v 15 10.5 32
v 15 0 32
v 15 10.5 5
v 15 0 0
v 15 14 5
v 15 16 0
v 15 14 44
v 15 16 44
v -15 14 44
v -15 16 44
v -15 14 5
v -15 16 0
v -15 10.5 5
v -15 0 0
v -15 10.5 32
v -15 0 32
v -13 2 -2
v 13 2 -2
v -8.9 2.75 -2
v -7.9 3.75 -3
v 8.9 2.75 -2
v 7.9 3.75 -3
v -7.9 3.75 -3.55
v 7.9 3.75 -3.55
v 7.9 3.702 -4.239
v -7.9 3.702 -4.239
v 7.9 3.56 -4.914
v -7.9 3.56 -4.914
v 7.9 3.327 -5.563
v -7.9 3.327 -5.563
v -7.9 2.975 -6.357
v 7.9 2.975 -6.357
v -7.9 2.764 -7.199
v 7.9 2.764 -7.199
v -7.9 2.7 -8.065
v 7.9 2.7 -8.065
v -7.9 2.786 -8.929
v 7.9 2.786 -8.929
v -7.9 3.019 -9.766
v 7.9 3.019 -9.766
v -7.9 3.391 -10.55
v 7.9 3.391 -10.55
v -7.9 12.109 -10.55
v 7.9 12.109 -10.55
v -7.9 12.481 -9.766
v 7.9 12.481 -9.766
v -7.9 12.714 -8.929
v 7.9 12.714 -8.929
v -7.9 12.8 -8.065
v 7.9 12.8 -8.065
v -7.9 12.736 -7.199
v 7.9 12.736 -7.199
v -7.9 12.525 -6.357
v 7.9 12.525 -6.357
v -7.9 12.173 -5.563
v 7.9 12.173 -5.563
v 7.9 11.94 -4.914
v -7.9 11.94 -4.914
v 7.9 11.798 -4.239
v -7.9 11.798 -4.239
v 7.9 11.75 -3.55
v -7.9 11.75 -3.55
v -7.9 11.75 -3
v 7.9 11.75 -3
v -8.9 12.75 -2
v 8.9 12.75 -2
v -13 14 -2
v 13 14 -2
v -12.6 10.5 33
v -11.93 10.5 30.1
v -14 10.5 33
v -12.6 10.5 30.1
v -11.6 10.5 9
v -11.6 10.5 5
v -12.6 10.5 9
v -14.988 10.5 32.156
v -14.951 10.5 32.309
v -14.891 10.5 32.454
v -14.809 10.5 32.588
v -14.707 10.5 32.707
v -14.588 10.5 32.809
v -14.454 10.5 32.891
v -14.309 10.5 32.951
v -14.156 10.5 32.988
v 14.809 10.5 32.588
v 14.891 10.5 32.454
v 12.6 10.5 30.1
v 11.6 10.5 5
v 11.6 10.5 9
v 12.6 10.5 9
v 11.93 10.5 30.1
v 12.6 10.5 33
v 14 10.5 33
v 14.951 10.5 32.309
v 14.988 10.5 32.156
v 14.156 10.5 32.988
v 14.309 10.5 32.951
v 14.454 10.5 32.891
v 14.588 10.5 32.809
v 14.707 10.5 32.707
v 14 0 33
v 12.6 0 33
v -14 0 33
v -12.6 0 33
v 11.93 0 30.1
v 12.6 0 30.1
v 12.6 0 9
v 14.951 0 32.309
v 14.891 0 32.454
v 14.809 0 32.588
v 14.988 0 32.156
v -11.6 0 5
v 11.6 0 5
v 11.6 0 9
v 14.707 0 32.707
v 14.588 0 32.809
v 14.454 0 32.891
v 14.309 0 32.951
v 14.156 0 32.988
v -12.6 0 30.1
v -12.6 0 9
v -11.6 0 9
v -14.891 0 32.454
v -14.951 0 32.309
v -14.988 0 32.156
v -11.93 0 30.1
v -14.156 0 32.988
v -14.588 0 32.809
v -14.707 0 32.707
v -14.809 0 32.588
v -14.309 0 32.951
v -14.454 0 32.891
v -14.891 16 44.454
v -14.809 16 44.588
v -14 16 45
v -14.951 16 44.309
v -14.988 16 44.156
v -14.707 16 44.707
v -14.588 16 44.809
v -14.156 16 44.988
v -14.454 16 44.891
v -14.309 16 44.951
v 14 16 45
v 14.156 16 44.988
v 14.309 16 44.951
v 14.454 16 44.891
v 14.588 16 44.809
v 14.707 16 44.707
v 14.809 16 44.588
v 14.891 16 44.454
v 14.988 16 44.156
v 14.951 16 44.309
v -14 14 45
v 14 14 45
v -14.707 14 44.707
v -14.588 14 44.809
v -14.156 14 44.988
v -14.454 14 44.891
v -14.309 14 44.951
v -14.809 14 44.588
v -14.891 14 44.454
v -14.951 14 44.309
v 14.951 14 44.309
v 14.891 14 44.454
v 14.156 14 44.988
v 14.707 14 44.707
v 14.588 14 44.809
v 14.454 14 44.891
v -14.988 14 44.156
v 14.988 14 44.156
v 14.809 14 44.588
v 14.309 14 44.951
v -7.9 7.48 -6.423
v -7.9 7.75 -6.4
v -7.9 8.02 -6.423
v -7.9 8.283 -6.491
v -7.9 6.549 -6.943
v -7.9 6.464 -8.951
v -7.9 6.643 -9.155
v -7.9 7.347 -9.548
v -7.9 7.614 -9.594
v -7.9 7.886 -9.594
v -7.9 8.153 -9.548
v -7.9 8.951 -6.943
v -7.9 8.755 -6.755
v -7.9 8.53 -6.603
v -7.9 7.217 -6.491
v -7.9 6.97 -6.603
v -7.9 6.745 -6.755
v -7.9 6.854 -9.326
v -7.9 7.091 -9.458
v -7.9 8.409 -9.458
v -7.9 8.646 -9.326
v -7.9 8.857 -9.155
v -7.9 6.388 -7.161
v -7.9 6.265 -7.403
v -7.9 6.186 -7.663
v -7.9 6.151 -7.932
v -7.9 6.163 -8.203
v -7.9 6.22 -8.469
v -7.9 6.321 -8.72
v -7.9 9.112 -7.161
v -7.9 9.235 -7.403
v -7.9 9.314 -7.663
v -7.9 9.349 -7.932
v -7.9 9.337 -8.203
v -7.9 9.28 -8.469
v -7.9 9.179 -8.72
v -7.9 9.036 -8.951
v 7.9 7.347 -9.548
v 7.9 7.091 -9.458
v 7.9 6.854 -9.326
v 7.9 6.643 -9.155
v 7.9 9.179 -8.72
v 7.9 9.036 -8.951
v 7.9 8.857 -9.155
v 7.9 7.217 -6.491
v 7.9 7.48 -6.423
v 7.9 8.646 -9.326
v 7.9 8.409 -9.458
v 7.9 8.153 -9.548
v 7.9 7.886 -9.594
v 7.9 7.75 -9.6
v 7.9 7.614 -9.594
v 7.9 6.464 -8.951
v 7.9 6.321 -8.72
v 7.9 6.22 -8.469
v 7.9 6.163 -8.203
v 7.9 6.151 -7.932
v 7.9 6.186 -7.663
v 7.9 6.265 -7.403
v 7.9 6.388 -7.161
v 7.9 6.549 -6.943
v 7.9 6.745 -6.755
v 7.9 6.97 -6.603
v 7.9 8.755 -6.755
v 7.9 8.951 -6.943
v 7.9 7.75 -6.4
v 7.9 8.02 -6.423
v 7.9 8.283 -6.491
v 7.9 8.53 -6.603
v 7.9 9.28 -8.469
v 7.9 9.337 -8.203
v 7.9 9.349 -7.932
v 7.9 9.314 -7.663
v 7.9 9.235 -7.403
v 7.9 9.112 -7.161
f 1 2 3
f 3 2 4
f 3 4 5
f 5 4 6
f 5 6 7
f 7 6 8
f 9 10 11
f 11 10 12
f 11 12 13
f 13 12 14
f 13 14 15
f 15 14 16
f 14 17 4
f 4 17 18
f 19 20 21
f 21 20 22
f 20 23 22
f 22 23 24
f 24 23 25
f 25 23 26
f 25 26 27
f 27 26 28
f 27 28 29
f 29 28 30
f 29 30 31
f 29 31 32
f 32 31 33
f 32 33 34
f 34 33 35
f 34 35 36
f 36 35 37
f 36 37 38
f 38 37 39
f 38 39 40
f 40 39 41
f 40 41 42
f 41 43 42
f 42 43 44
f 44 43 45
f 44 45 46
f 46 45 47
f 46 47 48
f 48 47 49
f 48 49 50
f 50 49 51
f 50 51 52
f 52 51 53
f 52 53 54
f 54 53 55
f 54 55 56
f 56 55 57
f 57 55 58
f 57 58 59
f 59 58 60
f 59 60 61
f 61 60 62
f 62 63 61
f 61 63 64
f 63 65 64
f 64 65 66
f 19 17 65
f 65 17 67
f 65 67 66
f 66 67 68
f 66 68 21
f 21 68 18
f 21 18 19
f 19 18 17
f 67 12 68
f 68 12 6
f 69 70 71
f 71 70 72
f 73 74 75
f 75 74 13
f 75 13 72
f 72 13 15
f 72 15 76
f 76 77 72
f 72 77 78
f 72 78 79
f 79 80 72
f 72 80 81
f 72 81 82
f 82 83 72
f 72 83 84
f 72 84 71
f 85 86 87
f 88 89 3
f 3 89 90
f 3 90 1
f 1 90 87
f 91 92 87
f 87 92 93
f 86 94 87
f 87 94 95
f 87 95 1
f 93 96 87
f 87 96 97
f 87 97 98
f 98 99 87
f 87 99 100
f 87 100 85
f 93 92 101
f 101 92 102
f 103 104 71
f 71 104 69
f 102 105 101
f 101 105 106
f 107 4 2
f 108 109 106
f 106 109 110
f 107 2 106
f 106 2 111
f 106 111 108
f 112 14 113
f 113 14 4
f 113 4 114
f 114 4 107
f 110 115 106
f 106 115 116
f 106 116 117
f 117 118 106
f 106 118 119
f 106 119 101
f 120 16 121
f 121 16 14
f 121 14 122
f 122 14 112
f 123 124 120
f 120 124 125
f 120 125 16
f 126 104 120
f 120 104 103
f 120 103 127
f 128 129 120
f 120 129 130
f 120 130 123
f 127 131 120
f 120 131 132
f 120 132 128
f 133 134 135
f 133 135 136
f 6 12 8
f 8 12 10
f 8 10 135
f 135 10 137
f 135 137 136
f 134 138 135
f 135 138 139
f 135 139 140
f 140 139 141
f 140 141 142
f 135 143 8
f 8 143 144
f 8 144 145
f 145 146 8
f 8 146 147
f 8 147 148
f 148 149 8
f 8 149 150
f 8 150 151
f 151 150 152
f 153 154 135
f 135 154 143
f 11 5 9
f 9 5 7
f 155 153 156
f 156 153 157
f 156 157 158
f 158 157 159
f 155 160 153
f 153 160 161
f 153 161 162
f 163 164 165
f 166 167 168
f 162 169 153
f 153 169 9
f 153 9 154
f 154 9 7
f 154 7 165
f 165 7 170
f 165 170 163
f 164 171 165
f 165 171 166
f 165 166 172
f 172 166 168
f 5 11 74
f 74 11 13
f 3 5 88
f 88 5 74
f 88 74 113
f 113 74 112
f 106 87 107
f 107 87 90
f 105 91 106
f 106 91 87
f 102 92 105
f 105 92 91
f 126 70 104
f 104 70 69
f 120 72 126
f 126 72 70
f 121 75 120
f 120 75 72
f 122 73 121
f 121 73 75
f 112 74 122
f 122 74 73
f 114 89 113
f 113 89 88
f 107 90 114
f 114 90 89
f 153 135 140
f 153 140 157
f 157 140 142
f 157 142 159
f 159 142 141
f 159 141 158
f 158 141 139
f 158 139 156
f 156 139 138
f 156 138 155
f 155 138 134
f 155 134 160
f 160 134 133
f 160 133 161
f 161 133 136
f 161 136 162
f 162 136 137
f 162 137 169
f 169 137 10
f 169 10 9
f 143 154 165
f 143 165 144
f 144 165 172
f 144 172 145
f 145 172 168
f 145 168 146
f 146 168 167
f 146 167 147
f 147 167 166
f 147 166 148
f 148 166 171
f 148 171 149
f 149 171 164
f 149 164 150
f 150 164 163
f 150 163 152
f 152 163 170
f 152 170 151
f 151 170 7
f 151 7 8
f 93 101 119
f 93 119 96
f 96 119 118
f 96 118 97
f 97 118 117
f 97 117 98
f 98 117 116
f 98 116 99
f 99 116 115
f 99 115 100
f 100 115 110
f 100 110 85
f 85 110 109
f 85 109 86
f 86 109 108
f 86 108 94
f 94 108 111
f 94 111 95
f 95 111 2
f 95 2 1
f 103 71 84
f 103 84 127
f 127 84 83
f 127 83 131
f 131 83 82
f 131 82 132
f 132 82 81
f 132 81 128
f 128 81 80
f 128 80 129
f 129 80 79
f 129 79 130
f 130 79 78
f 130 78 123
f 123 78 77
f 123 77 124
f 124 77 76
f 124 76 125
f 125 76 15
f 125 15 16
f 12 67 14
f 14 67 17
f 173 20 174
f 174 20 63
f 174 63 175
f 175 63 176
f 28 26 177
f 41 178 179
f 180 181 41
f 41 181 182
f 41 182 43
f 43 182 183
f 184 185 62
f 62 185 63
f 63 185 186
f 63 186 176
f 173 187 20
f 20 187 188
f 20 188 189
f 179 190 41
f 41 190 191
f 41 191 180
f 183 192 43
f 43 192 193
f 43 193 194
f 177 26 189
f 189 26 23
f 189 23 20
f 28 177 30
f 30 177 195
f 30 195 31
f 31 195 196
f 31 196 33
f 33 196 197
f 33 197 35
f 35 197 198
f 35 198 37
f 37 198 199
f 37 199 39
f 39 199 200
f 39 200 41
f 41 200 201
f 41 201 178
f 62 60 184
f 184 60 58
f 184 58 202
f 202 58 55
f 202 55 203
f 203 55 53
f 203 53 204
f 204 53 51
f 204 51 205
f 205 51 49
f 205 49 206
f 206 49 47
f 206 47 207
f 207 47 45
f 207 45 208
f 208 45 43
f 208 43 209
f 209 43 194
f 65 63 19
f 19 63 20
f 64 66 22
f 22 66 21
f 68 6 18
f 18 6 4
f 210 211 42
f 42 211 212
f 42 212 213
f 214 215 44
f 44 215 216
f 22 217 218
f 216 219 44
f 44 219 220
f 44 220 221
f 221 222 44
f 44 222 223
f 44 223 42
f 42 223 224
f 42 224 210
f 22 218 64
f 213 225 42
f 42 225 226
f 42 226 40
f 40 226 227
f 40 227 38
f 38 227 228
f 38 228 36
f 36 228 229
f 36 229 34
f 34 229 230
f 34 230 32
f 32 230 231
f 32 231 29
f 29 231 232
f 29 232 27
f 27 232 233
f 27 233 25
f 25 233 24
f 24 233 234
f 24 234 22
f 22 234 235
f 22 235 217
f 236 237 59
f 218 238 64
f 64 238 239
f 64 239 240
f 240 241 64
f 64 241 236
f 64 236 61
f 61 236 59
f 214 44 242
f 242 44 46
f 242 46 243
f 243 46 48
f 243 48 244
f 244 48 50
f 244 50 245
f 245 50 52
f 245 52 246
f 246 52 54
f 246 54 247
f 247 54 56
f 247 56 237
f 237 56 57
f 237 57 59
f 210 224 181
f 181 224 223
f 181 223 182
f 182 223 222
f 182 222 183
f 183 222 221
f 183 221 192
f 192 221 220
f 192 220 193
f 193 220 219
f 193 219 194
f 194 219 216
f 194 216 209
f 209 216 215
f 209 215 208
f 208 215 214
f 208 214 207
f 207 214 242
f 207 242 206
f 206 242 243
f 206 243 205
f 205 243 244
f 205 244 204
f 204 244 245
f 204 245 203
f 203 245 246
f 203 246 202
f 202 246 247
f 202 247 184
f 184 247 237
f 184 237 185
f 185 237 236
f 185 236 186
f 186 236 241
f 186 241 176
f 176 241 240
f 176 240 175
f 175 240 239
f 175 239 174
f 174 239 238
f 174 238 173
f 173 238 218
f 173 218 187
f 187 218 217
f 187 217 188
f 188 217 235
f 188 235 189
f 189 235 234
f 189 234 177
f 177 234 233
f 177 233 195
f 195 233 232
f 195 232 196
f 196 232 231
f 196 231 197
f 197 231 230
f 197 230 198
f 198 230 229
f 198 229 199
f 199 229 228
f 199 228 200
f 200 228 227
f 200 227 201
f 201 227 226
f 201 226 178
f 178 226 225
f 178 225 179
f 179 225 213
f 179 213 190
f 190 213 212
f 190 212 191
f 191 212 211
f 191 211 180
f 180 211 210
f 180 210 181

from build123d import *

# Parameters (mm, degrees)
CROQUIS2_R                   = 1.6
SALIENTE_EXTRUIR1_DEPTH      = 15
CORTAR_EXTRUIR1_REACH        = 52.06
REDONDEO1_R                  = 1
CORTAR_EXTRUIR_L_MINA1_DEPTH = 16


# Read off the part's stored shape, not the designer's step: Cortar-Extruir-Lámina1
with BuildPart() as part:
    # Croquis2 → Saliente-Extruir1 (new, symmetric)
    with BuildSketch(Plane(origin=(0, 0, 0), x_dir=(0, 0, -1), z_dir=(1, 0, 0))):
        with BuildLine():
            Line((0, 16), (-45, 16))
            Line((-45, 16), (-45, 14))
            Line((-45, 14), (-5, 14))
            Line((-5, 14), (-5, 10.5))
            Line((-5, 10.5), (-33, 10.5))
            Line((-33, 10.5), (-33, 0))
            Line((-33, 0), (0, 0))
            Line((0, 0), (2, 2))
            Line((2, 2), (2, 2.75))
            Line((2, 2.75), (3, 3.75))
            Line((3, 3.75), (3.55, 3.75))
            ThreePointArc((3.55, 3.75), (4.578743846, 3.643024228), (5.563467425, 3.32667444))
            ThreePointArc((5.563467425, 3.32667444), (8.065241178, 2.700421444), (10.55, 3.391101056))
            Line((10.55, 3.391101056), (10.55, 12.108898944))
            ThreePointArc((10.55, 12.108898944), (8.065241178, 12.799578556), (5.563467425, 12.17332556))
            ThreePointArc((5.563467425, 12.17332556), (4.578743846, 11.856975772), (3.55, 11.75))
            Line((3.55, 11.75), (3, 11.75))
            Line((3, 11.75), (2, 12.75))
            Line((2, 12.75), (2, 14))
            Line((2, 14), (0, 16))
        make_face()
        with Locations((8, 7.75)):
            Circle(CROQUIS2_R, mode=Mode.SUBTRACT)
    extrude(amount=SALIENTE_EXTRUIR1_DEPTH, both=True)

    # Croquis3 → Cortar-Extruir1 (cut, up to next)
    with BuildSketch(Plane(origin=(0, 0, 0), x_dir=(1, 0, 0), z_dir=(0, 1, 0)), mode=Mode.PRIVATE) as cortar_extruir1_sk1:
        Polygon((11.6, -5), (-11.6, -5), (-11.6, -9), (-12.6, -9), (-12.6, -30.1), (-11.93, -30.1), (-12.6, -33), (12.6, -33), (11.93, -30.1), (12.6, -30.1), (12.6, -9), (11.6, -9), align=None)
    cortar_extruir1_tool1 = extrude(cortar_extruir1_sk1.sketch, amount=CORTAR_EXTRUIR1_REACH, mode=Mode.PRIVATE) & part.part
    add(cortar_extruir1_tool1.solids().sort_by_distance((0, 0, 19.104296))[0], mode=Mode.SUBTRACT)

    # Redondeo1
    redondeo1_edges = [part.edges().sort_by_distance(p)[0] for p in [
        (-15, 5.25, 33),
        (-15, 15, 45),
        (15, 15, 45),
        (15, 5.25, 33),
    ]]
    fillet(redondeo1_edges, radius=REDONDEO1_R)

    # Cortar-Extruir-Lámina1 outline → Cortar-Extruir-Lámina1 (cut)
    with BuildSketch(Plane(origin=(0, 0, 0), x_dir=(1, 0, 0), z_dir=(0, 1, 0))):
        Polygon((-15, 0), (-13, 2), (-8.9, 2), (-7.9, 3), (-7.9, 10.55), (-15, 10.55), align=None)
        Polygon((7.9, 3), (8.9, 2), (13, 2), (15, 0), (15, 10.55), (7.9, 10.55), align=None)
    extrude(amount=CORTAR_EXTRUIR_L_MINA1_DEPTH, mode=Mode.SUBTRACT)


solid = part.part
